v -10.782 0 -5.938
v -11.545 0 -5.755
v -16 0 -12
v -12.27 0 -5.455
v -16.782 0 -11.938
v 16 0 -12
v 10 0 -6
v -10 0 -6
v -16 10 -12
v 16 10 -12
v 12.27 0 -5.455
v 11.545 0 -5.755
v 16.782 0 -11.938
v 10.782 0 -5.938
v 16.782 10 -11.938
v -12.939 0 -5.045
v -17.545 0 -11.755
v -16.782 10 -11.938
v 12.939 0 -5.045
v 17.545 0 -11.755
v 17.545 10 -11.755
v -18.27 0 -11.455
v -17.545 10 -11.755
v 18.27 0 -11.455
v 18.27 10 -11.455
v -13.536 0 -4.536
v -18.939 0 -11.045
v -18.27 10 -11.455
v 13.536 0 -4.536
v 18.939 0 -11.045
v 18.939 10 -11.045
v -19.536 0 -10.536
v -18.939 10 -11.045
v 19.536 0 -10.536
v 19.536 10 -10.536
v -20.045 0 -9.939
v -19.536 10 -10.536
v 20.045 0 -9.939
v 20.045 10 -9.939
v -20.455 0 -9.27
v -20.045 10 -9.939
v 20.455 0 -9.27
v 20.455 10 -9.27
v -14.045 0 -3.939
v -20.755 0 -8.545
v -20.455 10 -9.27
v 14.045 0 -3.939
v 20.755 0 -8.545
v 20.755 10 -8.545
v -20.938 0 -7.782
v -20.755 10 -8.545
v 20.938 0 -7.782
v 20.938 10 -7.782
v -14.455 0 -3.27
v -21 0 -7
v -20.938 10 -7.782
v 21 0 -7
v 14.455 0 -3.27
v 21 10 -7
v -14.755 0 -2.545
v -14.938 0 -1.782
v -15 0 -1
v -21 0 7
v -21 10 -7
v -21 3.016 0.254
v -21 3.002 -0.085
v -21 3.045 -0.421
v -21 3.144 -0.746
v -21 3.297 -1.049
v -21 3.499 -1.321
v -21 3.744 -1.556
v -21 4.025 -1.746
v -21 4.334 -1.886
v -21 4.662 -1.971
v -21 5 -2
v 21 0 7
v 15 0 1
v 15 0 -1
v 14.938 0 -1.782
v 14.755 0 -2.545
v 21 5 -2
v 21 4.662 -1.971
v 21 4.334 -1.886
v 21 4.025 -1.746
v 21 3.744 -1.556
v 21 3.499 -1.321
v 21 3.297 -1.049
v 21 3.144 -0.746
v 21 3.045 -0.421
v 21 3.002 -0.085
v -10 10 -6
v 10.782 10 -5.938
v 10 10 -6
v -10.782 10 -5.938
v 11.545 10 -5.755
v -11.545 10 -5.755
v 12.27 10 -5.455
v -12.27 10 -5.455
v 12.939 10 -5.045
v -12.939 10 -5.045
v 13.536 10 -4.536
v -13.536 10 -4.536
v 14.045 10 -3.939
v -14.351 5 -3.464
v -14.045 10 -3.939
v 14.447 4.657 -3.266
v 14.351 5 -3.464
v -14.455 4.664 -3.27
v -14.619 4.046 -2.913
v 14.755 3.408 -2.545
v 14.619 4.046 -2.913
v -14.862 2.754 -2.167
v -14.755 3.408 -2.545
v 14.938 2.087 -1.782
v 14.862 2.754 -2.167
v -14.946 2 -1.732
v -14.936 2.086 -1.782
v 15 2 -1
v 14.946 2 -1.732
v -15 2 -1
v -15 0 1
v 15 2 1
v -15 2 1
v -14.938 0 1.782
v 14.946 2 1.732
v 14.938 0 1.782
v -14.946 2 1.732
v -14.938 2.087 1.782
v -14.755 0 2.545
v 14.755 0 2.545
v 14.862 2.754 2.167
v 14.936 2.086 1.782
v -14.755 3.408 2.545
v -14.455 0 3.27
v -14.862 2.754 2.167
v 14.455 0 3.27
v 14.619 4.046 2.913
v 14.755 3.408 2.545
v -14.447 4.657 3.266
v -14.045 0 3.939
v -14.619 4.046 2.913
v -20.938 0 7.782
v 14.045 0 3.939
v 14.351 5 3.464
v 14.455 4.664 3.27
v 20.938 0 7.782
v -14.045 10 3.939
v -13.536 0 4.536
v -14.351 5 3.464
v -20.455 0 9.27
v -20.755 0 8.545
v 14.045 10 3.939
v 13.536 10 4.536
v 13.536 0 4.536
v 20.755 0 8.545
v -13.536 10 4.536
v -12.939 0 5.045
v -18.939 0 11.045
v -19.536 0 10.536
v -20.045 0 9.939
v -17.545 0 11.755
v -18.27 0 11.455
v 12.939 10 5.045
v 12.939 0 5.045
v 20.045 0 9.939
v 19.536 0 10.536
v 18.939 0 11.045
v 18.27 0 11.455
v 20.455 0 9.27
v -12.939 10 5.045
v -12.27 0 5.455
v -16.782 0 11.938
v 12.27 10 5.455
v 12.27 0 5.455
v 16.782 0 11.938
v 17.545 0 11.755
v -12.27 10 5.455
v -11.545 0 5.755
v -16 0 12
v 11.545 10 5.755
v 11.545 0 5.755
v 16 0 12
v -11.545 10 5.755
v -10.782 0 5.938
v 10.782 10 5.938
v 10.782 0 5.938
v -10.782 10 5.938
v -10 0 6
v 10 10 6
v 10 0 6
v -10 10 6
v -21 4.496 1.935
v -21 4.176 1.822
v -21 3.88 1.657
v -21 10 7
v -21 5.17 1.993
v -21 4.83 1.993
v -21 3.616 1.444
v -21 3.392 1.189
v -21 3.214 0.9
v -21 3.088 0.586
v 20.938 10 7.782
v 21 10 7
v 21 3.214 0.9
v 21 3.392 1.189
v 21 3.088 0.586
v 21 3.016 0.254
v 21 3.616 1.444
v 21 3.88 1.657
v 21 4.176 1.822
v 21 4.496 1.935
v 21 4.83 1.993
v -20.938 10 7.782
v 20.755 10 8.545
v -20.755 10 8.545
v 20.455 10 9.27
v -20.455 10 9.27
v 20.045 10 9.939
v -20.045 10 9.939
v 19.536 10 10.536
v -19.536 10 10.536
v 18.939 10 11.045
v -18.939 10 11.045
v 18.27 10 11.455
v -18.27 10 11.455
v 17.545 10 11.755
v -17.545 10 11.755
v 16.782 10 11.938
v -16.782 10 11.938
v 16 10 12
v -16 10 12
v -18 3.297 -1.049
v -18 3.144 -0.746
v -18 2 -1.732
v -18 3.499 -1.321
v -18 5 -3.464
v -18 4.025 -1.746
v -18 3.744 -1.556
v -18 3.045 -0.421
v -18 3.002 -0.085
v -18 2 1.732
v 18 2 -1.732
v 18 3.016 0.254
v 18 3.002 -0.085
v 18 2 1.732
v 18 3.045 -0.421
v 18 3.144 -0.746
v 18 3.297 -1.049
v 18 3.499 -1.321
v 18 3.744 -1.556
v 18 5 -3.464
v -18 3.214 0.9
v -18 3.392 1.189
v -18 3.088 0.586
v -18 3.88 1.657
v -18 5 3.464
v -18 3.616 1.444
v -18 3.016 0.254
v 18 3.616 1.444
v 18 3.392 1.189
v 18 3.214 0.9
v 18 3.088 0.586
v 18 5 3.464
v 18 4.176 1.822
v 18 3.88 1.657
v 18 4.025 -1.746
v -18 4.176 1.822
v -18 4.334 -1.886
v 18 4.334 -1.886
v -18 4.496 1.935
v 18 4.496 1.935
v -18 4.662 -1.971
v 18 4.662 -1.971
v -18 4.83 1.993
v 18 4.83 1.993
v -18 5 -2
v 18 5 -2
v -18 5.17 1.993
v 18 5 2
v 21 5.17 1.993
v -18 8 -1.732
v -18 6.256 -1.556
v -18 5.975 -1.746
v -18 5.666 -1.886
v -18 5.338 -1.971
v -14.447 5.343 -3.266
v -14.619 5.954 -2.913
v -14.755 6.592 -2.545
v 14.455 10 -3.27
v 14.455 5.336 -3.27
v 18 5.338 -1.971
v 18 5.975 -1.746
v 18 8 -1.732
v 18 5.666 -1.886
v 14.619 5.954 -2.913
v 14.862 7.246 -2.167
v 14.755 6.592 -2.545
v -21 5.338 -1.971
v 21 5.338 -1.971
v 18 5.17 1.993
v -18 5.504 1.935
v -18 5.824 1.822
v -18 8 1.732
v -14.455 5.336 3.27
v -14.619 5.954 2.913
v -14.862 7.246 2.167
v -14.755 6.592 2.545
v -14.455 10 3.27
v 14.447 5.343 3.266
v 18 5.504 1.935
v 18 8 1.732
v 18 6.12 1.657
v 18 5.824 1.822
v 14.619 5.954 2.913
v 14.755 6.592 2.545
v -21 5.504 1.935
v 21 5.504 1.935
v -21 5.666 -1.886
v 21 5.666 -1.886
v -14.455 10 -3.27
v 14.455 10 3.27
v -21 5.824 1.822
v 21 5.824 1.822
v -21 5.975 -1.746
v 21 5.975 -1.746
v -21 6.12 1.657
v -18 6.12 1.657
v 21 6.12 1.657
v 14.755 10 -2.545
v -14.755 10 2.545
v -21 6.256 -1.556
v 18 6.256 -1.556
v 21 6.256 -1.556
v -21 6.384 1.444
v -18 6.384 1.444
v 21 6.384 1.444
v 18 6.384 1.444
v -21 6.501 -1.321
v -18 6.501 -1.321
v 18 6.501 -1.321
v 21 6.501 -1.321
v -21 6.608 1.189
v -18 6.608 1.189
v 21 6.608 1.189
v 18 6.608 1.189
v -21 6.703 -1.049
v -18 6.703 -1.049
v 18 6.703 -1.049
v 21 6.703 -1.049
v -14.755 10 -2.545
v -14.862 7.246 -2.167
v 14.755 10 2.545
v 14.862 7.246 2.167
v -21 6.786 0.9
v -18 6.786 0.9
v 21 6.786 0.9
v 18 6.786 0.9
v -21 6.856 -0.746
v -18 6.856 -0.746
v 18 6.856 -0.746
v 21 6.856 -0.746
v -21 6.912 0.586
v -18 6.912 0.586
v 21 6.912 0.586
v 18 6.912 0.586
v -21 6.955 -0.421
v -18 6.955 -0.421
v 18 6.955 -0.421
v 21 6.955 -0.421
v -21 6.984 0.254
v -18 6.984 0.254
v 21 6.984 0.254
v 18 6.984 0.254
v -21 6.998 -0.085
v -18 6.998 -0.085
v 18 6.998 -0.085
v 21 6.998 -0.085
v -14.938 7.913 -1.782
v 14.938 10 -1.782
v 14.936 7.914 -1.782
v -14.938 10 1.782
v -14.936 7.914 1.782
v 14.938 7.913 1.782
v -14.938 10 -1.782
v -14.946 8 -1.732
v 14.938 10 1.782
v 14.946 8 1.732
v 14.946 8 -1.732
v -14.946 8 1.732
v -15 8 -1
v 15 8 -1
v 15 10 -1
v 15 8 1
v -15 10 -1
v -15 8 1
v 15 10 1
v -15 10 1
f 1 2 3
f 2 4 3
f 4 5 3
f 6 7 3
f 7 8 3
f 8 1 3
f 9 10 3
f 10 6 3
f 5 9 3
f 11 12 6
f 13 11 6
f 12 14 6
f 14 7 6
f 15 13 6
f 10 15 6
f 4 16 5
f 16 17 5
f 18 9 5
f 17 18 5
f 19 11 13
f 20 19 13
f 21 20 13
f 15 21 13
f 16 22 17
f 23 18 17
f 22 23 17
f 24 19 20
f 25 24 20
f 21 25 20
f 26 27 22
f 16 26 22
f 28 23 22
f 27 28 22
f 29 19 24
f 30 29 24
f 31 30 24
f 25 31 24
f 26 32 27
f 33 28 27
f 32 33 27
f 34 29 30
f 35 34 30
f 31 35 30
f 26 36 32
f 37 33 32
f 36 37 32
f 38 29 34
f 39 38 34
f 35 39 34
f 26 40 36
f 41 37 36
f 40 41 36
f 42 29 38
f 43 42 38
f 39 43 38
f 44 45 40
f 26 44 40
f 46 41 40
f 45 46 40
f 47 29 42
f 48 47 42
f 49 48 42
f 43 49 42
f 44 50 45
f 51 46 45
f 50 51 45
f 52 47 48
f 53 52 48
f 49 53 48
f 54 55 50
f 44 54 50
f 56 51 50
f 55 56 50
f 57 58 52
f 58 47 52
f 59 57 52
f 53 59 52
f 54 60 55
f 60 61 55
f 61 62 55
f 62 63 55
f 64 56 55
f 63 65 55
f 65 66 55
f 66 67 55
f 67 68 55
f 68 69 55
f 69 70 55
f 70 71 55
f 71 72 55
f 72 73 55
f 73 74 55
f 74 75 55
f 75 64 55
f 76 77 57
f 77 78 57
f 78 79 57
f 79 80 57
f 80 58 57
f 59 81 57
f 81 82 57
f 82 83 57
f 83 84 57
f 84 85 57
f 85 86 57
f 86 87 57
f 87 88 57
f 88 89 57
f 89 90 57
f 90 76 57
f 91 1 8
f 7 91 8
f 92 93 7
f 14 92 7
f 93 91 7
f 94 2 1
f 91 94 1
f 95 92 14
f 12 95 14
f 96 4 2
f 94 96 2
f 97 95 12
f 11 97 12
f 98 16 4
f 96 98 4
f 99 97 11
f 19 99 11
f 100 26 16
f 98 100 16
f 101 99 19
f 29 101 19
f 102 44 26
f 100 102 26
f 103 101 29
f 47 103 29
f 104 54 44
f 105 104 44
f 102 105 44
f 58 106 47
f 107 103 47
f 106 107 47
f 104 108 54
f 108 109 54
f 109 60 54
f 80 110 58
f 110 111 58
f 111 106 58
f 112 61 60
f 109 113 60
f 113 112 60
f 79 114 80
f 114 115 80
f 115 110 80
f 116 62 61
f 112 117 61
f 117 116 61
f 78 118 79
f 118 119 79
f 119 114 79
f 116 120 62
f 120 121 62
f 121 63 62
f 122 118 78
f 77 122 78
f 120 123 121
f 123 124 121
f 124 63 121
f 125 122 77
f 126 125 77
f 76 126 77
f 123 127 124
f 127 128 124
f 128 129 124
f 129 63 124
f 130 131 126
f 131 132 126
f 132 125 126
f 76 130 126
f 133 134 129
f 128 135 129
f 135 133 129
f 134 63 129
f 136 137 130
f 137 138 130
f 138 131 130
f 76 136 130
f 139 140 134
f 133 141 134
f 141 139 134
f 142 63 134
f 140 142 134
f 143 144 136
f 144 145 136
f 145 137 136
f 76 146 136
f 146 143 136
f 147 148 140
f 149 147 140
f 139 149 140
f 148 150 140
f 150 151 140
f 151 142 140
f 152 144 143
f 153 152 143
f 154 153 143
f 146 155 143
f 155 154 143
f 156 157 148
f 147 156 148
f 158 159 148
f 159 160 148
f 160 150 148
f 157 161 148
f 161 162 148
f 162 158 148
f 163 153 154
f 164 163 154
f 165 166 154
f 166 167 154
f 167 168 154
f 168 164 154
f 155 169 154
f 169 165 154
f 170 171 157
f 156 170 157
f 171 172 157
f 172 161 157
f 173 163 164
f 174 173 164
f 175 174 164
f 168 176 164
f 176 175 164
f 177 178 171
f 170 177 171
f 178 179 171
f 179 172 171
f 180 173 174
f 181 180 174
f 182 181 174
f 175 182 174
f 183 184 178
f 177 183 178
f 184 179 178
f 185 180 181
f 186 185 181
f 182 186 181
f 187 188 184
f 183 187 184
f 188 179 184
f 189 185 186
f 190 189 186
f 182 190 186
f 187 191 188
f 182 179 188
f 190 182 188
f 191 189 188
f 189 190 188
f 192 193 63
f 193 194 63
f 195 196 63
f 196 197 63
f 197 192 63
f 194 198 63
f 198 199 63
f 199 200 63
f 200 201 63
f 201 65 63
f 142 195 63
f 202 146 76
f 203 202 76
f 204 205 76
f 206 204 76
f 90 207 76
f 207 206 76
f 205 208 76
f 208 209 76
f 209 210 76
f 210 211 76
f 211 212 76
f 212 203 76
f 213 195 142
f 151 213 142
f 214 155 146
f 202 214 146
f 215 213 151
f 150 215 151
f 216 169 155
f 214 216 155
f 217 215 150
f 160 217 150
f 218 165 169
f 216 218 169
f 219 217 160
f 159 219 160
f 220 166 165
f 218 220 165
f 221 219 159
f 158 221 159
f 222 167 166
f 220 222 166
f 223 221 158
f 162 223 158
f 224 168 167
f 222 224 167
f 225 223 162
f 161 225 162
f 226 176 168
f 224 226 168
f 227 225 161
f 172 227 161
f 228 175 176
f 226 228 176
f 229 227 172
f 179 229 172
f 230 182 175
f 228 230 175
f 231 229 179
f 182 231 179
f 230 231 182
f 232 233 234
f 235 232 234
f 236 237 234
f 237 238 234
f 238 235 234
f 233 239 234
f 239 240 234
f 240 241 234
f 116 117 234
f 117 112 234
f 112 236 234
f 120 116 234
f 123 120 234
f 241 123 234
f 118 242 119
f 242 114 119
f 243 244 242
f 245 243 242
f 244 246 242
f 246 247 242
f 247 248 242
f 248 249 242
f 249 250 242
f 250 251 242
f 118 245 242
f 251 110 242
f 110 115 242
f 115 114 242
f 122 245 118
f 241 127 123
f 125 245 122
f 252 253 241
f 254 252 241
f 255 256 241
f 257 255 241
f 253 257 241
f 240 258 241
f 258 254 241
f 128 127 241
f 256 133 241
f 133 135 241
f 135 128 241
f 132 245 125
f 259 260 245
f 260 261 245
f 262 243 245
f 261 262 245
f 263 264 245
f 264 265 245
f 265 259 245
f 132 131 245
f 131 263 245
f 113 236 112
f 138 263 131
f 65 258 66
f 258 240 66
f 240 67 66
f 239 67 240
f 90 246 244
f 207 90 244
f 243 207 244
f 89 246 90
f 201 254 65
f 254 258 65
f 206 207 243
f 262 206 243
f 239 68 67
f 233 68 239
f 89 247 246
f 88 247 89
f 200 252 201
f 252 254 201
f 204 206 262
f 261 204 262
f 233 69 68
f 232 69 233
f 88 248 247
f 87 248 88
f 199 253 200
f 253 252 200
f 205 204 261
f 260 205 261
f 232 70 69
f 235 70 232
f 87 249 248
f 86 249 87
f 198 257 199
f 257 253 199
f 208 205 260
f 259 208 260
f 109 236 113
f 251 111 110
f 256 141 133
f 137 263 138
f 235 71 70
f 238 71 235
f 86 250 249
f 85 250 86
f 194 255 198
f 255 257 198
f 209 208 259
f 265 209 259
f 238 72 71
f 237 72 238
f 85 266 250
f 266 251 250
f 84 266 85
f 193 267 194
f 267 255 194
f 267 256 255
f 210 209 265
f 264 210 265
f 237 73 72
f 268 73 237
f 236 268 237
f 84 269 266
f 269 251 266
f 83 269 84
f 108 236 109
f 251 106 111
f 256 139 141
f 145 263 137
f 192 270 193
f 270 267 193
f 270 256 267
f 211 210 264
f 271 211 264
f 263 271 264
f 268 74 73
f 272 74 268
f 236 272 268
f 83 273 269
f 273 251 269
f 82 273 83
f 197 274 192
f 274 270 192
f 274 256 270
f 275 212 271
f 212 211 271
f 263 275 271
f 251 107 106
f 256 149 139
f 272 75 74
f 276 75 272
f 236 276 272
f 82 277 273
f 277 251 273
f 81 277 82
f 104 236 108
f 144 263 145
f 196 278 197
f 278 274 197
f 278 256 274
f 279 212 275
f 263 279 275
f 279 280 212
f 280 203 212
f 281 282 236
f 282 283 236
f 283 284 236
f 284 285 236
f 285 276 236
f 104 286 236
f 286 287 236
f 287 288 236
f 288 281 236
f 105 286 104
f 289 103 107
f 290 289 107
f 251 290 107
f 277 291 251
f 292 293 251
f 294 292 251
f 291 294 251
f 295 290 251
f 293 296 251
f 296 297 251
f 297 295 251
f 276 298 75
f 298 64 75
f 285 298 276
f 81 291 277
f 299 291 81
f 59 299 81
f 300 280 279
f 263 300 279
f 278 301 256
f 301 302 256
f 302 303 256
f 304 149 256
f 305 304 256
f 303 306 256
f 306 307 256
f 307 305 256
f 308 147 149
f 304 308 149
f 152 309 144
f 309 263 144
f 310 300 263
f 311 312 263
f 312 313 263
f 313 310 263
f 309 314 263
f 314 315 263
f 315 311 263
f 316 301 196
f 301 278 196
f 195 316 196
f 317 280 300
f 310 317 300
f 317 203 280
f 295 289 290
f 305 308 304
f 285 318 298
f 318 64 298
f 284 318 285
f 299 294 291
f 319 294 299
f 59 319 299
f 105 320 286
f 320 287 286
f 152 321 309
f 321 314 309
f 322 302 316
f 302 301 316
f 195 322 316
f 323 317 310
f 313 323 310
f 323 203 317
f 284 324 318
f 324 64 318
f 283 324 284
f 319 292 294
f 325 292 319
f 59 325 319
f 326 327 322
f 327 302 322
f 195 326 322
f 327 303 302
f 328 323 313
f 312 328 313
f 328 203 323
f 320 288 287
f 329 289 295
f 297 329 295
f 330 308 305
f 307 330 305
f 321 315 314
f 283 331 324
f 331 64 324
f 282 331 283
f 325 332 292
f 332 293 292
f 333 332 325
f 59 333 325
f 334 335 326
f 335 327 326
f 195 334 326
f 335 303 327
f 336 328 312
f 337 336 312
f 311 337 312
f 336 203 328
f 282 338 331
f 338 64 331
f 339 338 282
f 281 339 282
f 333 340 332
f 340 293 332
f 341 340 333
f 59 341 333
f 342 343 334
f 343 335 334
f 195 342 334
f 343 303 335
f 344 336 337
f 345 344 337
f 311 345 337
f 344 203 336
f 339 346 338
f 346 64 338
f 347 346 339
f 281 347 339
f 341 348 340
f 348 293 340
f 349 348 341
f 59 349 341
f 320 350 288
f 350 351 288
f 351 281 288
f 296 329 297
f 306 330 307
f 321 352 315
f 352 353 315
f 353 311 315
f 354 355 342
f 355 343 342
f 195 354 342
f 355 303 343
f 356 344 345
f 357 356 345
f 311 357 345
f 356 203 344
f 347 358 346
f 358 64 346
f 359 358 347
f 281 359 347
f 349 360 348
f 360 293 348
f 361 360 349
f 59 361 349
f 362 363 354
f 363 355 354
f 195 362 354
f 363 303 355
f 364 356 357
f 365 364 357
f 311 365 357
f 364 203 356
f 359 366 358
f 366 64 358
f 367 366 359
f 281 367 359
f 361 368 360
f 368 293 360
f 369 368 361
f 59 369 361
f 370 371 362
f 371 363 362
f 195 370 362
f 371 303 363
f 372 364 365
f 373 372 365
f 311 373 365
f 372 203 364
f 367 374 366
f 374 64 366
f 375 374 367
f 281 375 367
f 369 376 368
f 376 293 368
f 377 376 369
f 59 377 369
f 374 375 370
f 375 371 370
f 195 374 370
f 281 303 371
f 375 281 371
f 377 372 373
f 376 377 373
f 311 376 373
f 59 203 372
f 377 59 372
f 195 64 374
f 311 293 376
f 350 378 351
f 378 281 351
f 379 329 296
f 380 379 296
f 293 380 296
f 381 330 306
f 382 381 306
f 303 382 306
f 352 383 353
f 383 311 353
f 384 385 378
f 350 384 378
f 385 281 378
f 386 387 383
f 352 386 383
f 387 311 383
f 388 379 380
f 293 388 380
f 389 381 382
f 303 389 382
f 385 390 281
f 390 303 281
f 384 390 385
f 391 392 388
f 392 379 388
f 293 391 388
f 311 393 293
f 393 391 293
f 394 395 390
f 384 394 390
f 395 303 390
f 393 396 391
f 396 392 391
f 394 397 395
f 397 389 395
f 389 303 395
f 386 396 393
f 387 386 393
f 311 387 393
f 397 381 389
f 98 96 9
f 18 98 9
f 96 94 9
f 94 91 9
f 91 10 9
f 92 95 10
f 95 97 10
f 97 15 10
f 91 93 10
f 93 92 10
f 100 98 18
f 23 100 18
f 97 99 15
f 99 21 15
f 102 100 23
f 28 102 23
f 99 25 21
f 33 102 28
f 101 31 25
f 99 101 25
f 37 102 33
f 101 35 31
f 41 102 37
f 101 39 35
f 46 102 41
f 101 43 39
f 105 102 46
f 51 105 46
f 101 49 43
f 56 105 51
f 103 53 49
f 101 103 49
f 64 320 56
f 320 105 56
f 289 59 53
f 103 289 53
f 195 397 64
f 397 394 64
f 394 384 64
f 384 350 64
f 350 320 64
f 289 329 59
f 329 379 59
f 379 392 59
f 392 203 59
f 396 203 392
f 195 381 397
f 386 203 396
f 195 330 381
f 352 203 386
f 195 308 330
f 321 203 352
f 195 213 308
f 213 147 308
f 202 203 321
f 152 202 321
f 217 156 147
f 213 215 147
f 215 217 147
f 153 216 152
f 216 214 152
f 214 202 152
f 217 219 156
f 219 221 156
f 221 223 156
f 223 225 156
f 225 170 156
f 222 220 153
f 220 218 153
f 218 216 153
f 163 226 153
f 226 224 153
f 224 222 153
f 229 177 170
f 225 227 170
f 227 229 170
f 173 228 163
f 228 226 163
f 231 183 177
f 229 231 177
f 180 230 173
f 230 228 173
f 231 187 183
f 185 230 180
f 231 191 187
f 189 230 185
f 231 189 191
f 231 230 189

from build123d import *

# Parameters (mm, degrees)
BOSS_EXTRUDE1_DEPTH = 10
CUT_EXTRUDE1_REACH  = 46.811
SKETCH2_R           = 2
CUT_EXTRUDE2_START  = -3
CUT_EXTRUDE2_DEPTH  = 36


with BuildPart() as part:
    # Sketch1 → Boss-Extrude1 (new body)
    with BuildSketch(Plane(origin=(0, 0, 0), x_dir=(1, 0, 0), z_dir=(0, 1, 0))):
        with BuildLine():
            Line((16, -12), (-16, -12))
            ThreePointArc((-16, -12), (-19.535533906, -10.535533906), (-21, -7))
            Line((-21, -7), (-21, 7))
            ThreePointArc((-21, 7), (-19.535533906, 10.535533906), (-16, 12))
            Line((-16, 12), (16, 12))
            ThreePointArc((16, 12), (19.535533906, 10.535533906), (21, 7))
            Line((21, 7), (21, -7))
            ThreePointArc((21, -7), (19.535533906, -10.535533906), (16, -12))
        make_face()
        with BuildLine():
            Line((-10, -6), (10, -6))
            ThreePointArc((10, -6), (13.535533906, -4.535533906), (15, -1))
            Line((15, -1), (15, 1))
            ThreePointArc((15, 1), (13.535533906, 4.535533906), (10, 6))
            Line((10, 6), (-10, 6))
            ThreePointArc((-10, 6), (-13.535533906, 4.535533906), (-15, 1))
            Line((-15, 1), (-15, -1))
            ThreePointArc((-15, -1), (-13.535533906, -4.535533906), (-10, -6))
        make_face(mode=Mode.SUBTRACT)
    extrude(amount=BOSS_EXTRUDE1_DEPTH)

    # Cut-Extrude1: up to this face of the body (flat: up to its plane)
    cut_extrude1_end = Plane(part.part.faces().sort_by_distance((-21, 5, 0))[0])
    # Sketch2 → Cut-Extrude1 (cut, up to the picked face)
    with BuildSketch(Plane(origin=(21, 0, 0), x_dir=(0, 0, -1), z_dir=(1, 0, 0)), mode=Mode.PRIVATE) as cut_extrude1_sk1:
        with Locations((0, 5)):
            Circle(SKETCH2_R)
    cut_extrude1_tool1 = split(extrude(cut_extrude1_sk1.sketch, amount=-CUT_EXTRUDE1_REACH, mode=Mode.PRIVATE), bisect_by=cut_extrude1_end, keep=Keep.BOTH, mode=Mode.PRIVATE)
    add(cut_extrude1_tool1.solids().sort_by(Axis((21, 5, 0), (-1, 0, 0)))[0], mode=Mode.SUBTRACT)

    # Sketch3 → Cut-Extrude2 (cut)
    with BuildSketch(Plane(origin=(-15, 0, 0), x_dir=(0, 0, -1), z_dir=(1, 0, 0)).offset(CUT_EXTRUDE2_START)):
        Polygon((3.464101615, 5), (1.732050808, 8), (-1.732050808, 8), (-3.464101615, 5), (-1.732050808, 2), (1.732050808, 2), align=None)
    extrude(amount=CUT_EXTRUDE2_DEPTH, mode=Mode.SUBTRACT)


solid = part.part
